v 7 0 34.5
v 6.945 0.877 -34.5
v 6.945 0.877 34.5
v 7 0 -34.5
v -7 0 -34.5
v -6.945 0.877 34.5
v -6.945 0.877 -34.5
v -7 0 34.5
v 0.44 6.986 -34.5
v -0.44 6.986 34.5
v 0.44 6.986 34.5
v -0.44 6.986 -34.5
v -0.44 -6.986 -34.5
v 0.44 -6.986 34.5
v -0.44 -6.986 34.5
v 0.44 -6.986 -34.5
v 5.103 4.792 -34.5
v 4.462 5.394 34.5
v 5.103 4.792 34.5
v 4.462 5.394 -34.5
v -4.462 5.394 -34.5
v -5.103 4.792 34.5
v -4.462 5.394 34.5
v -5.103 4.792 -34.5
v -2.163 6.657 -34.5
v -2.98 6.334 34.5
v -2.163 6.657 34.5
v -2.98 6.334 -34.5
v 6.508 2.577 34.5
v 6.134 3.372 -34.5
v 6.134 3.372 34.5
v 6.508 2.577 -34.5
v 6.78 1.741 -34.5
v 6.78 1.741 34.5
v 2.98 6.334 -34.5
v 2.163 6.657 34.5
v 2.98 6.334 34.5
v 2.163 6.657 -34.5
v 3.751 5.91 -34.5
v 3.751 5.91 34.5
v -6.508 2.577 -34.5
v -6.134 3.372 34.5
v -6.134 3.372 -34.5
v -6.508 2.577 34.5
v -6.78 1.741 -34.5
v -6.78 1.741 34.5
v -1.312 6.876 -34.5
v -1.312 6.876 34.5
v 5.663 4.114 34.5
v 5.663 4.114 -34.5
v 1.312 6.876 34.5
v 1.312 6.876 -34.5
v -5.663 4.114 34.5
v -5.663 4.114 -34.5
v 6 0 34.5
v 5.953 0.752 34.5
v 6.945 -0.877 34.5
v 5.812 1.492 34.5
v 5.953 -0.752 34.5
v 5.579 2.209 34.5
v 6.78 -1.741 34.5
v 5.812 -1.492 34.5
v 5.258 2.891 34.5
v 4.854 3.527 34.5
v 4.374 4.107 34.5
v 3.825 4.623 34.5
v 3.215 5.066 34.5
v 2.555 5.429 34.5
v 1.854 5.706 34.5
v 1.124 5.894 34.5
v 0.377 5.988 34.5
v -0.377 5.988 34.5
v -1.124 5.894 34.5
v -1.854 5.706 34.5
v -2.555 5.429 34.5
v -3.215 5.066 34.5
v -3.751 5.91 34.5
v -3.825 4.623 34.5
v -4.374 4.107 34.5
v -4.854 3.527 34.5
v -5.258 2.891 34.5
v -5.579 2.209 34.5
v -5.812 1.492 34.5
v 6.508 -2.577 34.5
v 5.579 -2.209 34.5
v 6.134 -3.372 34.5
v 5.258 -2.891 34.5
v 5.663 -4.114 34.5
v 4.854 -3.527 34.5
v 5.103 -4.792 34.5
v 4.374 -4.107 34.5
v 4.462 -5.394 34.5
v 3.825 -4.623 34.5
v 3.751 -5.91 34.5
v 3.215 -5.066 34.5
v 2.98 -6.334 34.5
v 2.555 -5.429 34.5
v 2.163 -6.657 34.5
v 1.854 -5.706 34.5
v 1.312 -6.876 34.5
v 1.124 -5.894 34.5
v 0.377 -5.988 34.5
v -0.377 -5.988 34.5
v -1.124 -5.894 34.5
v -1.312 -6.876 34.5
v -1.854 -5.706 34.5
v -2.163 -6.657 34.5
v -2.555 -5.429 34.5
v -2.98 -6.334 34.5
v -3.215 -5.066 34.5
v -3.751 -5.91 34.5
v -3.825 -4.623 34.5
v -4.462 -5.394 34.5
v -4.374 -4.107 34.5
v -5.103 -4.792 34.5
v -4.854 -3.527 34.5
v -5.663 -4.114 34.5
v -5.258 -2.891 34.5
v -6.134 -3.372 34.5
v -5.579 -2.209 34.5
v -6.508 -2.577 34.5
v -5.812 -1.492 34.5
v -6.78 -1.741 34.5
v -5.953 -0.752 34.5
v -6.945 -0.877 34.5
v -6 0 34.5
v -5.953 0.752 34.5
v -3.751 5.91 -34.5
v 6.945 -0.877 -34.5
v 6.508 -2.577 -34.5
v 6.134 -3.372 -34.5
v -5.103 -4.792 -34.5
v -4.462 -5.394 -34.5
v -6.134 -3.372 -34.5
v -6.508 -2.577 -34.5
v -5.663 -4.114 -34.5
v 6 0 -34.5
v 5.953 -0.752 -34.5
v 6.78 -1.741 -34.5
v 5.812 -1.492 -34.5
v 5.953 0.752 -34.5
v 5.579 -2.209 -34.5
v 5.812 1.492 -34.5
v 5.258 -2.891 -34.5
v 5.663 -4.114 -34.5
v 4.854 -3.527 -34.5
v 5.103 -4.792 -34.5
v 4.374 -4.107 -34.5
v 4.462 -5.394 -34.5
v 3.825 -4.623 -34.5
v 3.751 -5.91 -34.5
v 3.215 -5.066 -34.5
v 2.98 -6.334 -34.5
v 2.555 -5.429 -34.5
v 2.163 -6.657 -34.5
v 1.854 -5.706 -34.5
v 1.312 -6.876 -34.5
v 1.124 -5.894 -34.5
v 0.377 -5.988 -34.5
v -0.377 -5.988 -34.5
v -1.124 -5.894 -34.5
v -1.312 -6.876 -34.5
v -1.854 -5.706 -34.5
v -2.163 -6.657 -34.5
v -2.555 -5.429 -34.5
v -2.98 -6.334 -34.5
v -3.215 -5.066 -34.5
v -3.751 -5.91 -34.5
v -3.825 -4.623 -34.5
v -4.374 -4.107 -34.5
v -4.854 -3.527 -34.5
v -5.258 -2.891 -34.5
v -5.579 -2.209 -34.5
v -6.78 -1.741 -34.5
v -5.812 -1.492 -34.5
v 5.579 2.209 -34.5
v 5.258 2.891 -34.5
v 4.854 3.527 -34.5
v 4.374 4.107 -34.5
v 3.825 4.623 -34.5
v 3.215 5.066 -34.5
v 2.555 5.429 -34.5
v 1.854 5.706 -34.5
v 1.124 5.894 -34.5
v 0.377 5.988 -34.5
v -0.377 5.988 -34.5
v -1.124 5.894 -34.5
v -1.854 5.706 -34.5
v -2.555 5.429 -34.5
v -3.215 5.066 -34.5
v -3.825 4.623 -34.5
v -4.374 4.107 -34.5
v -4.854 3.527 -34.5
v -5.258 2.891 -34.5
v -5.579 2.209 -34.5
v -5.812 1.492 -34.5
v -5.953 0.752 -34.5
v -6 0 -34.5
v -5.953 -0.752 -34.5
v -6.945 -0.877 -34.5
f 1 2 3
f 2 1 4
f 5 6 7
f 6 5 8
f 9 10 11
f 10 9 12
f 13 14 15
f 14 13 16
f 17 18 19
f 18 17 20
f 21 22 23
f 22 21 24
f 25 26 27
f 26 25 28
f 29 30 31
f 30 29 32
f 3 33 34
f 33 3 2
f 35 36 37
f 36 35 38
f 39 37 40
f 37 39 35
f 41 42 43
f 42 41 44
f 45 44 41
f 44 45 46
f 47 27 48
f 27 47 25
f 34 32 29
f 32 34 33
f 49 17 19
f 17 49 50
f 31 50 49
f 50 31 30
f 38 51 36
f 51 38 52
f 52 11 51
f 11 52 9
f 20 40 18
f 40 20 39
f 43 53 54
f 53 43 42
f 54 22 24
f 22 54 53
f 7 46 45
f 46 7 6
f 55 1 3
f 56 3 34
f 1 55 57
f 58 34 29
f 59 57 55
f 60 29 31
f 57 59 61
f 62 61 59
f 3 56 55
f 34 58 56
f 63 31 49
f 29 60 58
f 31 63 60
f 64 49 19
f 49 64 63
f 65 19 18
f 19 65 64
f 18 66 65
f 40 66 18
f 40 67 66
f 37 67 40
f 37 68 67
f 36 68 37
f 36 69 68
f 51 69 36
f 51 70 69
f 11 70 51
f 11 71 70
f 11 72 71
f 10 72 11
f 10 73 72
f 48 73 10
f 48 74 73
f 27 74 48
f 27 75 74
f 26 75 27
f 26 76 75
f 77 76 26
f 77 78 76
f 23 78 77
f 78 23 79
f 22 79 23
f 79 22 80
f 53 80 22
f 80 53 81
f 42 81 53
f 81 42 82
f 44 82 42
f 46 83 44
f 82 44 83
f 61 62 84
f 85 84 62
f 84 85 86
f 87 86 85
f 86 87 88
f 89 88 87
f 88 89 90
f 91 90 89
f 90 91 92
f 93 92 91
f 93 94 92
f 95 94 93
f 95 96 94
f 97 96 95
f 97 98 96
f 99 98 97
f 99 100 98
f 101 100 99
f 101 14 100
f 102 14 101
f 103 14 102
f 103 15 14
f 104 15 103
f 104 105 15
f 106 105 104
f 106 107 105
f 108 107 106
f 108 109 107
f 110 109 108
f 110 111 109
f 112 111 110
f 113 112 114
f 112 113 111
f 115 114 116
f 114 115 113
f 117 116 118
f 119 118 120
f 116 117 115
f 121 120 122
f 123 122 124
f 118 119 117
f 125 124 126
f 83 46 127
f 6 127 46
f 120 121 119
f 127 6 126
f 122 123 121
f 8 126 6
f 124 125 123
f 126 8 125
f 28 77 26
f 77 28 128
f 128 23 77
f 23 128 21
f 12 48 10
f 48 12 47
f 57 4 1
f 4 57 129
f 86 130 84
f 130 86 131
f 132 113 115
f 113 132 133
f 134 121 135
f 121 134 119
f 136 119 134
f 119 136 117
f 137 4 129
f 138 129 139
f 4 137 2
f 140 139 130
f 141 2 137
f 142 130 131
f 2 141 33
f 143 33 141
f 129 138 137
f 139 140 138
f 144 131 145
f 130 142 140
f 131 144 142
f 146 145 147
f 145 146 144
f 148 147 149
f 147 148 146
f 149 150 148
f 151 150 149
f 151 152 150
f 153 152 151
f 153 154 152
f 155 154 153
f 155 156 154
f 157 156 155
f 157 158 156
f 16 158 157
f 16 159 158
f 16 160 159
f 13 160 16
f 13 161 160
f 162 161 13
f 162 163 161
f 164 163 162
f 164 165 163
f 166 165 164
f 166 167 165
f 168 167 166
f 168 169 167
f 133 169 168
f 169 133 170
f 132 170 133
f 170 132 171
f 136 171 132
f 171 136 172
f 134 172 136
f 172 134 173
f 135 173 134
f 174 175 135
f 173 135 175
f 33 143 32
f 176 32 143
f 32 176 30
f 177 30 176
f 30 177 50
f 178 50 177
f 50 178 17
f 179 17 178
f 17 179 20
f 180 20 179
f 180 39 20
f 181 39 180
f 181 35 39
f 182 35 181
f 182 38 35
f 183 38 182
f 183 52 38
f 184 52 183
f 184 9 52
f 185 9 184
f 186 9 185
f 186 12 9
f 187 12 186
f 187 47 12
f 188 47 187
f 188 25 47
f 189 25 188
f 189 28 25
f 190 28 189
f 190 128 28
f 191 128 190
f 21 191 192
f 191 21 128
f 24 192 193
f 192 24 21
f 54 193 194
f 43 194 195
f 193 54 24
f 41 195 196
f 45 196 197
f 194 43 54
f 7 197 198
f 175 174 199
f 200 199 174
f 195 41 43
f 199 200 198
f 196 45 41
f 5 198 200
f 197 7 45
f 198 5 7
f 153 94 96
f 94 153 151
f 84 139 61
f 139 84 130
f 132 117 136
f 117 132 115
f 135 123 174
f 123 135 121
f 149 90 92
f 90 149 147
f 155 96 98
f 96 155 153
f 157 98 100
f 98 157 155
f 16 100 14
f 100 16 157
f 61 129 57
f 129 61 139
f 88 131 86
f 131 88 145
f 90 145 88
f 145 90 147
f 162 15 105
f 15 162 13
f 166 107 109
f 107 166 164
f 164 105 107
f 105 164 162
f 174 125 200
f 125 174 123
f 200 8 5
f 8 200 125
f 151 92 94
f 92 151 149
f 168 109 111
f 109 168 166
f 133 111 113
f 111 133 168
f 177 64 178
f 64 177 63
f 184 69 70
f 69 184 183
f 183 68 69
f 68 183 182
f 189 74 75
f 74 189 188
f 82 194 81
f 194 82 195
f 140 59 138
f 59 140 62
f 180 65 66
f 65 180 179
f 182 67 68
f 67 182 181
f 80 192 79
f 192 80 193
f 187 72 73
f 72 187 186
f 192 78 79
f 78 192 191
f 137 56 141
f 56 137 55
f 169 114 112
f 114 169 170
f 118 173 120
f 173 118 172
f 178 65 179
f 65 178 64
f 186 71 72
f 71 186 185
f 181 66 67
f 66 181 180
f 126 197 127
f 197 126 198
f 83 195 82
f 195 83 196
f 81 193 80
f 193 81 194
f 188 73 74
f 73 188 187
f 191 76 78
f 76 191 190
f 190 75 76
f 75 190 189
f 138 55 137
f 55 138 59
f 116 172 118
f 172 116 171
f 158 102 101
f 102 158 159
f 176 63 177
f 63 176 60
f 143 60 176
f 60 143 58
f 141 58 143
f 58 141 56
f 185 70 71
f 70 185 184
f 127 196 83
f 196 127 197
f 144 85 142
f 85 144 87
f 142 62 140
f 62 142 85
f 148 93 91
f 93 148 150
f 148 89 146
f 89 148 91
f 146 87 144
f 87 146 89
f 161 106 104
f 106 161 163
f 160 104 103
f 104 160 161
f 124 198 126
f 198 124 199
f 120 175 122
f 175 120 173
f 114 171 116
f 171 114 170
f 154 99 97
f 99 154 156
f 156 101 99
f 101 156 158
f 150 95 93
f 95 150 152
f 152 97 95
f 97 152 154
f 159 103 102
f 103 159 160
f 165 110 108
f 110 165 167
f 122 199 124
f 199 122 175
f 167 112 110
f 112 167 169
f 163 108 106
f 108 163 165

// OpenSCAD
$fn = 50;


difference() {
	union() {
		translate(v = [0, 0, -34.5000000000]) {
			cylinder(h = 69, r = 7.0000000000);
		}
	}
	union() {
		translate(v = [0, 0, -100.0000000000]) {
			cylinder(h = 200, r = 6);
		}
	}
}
